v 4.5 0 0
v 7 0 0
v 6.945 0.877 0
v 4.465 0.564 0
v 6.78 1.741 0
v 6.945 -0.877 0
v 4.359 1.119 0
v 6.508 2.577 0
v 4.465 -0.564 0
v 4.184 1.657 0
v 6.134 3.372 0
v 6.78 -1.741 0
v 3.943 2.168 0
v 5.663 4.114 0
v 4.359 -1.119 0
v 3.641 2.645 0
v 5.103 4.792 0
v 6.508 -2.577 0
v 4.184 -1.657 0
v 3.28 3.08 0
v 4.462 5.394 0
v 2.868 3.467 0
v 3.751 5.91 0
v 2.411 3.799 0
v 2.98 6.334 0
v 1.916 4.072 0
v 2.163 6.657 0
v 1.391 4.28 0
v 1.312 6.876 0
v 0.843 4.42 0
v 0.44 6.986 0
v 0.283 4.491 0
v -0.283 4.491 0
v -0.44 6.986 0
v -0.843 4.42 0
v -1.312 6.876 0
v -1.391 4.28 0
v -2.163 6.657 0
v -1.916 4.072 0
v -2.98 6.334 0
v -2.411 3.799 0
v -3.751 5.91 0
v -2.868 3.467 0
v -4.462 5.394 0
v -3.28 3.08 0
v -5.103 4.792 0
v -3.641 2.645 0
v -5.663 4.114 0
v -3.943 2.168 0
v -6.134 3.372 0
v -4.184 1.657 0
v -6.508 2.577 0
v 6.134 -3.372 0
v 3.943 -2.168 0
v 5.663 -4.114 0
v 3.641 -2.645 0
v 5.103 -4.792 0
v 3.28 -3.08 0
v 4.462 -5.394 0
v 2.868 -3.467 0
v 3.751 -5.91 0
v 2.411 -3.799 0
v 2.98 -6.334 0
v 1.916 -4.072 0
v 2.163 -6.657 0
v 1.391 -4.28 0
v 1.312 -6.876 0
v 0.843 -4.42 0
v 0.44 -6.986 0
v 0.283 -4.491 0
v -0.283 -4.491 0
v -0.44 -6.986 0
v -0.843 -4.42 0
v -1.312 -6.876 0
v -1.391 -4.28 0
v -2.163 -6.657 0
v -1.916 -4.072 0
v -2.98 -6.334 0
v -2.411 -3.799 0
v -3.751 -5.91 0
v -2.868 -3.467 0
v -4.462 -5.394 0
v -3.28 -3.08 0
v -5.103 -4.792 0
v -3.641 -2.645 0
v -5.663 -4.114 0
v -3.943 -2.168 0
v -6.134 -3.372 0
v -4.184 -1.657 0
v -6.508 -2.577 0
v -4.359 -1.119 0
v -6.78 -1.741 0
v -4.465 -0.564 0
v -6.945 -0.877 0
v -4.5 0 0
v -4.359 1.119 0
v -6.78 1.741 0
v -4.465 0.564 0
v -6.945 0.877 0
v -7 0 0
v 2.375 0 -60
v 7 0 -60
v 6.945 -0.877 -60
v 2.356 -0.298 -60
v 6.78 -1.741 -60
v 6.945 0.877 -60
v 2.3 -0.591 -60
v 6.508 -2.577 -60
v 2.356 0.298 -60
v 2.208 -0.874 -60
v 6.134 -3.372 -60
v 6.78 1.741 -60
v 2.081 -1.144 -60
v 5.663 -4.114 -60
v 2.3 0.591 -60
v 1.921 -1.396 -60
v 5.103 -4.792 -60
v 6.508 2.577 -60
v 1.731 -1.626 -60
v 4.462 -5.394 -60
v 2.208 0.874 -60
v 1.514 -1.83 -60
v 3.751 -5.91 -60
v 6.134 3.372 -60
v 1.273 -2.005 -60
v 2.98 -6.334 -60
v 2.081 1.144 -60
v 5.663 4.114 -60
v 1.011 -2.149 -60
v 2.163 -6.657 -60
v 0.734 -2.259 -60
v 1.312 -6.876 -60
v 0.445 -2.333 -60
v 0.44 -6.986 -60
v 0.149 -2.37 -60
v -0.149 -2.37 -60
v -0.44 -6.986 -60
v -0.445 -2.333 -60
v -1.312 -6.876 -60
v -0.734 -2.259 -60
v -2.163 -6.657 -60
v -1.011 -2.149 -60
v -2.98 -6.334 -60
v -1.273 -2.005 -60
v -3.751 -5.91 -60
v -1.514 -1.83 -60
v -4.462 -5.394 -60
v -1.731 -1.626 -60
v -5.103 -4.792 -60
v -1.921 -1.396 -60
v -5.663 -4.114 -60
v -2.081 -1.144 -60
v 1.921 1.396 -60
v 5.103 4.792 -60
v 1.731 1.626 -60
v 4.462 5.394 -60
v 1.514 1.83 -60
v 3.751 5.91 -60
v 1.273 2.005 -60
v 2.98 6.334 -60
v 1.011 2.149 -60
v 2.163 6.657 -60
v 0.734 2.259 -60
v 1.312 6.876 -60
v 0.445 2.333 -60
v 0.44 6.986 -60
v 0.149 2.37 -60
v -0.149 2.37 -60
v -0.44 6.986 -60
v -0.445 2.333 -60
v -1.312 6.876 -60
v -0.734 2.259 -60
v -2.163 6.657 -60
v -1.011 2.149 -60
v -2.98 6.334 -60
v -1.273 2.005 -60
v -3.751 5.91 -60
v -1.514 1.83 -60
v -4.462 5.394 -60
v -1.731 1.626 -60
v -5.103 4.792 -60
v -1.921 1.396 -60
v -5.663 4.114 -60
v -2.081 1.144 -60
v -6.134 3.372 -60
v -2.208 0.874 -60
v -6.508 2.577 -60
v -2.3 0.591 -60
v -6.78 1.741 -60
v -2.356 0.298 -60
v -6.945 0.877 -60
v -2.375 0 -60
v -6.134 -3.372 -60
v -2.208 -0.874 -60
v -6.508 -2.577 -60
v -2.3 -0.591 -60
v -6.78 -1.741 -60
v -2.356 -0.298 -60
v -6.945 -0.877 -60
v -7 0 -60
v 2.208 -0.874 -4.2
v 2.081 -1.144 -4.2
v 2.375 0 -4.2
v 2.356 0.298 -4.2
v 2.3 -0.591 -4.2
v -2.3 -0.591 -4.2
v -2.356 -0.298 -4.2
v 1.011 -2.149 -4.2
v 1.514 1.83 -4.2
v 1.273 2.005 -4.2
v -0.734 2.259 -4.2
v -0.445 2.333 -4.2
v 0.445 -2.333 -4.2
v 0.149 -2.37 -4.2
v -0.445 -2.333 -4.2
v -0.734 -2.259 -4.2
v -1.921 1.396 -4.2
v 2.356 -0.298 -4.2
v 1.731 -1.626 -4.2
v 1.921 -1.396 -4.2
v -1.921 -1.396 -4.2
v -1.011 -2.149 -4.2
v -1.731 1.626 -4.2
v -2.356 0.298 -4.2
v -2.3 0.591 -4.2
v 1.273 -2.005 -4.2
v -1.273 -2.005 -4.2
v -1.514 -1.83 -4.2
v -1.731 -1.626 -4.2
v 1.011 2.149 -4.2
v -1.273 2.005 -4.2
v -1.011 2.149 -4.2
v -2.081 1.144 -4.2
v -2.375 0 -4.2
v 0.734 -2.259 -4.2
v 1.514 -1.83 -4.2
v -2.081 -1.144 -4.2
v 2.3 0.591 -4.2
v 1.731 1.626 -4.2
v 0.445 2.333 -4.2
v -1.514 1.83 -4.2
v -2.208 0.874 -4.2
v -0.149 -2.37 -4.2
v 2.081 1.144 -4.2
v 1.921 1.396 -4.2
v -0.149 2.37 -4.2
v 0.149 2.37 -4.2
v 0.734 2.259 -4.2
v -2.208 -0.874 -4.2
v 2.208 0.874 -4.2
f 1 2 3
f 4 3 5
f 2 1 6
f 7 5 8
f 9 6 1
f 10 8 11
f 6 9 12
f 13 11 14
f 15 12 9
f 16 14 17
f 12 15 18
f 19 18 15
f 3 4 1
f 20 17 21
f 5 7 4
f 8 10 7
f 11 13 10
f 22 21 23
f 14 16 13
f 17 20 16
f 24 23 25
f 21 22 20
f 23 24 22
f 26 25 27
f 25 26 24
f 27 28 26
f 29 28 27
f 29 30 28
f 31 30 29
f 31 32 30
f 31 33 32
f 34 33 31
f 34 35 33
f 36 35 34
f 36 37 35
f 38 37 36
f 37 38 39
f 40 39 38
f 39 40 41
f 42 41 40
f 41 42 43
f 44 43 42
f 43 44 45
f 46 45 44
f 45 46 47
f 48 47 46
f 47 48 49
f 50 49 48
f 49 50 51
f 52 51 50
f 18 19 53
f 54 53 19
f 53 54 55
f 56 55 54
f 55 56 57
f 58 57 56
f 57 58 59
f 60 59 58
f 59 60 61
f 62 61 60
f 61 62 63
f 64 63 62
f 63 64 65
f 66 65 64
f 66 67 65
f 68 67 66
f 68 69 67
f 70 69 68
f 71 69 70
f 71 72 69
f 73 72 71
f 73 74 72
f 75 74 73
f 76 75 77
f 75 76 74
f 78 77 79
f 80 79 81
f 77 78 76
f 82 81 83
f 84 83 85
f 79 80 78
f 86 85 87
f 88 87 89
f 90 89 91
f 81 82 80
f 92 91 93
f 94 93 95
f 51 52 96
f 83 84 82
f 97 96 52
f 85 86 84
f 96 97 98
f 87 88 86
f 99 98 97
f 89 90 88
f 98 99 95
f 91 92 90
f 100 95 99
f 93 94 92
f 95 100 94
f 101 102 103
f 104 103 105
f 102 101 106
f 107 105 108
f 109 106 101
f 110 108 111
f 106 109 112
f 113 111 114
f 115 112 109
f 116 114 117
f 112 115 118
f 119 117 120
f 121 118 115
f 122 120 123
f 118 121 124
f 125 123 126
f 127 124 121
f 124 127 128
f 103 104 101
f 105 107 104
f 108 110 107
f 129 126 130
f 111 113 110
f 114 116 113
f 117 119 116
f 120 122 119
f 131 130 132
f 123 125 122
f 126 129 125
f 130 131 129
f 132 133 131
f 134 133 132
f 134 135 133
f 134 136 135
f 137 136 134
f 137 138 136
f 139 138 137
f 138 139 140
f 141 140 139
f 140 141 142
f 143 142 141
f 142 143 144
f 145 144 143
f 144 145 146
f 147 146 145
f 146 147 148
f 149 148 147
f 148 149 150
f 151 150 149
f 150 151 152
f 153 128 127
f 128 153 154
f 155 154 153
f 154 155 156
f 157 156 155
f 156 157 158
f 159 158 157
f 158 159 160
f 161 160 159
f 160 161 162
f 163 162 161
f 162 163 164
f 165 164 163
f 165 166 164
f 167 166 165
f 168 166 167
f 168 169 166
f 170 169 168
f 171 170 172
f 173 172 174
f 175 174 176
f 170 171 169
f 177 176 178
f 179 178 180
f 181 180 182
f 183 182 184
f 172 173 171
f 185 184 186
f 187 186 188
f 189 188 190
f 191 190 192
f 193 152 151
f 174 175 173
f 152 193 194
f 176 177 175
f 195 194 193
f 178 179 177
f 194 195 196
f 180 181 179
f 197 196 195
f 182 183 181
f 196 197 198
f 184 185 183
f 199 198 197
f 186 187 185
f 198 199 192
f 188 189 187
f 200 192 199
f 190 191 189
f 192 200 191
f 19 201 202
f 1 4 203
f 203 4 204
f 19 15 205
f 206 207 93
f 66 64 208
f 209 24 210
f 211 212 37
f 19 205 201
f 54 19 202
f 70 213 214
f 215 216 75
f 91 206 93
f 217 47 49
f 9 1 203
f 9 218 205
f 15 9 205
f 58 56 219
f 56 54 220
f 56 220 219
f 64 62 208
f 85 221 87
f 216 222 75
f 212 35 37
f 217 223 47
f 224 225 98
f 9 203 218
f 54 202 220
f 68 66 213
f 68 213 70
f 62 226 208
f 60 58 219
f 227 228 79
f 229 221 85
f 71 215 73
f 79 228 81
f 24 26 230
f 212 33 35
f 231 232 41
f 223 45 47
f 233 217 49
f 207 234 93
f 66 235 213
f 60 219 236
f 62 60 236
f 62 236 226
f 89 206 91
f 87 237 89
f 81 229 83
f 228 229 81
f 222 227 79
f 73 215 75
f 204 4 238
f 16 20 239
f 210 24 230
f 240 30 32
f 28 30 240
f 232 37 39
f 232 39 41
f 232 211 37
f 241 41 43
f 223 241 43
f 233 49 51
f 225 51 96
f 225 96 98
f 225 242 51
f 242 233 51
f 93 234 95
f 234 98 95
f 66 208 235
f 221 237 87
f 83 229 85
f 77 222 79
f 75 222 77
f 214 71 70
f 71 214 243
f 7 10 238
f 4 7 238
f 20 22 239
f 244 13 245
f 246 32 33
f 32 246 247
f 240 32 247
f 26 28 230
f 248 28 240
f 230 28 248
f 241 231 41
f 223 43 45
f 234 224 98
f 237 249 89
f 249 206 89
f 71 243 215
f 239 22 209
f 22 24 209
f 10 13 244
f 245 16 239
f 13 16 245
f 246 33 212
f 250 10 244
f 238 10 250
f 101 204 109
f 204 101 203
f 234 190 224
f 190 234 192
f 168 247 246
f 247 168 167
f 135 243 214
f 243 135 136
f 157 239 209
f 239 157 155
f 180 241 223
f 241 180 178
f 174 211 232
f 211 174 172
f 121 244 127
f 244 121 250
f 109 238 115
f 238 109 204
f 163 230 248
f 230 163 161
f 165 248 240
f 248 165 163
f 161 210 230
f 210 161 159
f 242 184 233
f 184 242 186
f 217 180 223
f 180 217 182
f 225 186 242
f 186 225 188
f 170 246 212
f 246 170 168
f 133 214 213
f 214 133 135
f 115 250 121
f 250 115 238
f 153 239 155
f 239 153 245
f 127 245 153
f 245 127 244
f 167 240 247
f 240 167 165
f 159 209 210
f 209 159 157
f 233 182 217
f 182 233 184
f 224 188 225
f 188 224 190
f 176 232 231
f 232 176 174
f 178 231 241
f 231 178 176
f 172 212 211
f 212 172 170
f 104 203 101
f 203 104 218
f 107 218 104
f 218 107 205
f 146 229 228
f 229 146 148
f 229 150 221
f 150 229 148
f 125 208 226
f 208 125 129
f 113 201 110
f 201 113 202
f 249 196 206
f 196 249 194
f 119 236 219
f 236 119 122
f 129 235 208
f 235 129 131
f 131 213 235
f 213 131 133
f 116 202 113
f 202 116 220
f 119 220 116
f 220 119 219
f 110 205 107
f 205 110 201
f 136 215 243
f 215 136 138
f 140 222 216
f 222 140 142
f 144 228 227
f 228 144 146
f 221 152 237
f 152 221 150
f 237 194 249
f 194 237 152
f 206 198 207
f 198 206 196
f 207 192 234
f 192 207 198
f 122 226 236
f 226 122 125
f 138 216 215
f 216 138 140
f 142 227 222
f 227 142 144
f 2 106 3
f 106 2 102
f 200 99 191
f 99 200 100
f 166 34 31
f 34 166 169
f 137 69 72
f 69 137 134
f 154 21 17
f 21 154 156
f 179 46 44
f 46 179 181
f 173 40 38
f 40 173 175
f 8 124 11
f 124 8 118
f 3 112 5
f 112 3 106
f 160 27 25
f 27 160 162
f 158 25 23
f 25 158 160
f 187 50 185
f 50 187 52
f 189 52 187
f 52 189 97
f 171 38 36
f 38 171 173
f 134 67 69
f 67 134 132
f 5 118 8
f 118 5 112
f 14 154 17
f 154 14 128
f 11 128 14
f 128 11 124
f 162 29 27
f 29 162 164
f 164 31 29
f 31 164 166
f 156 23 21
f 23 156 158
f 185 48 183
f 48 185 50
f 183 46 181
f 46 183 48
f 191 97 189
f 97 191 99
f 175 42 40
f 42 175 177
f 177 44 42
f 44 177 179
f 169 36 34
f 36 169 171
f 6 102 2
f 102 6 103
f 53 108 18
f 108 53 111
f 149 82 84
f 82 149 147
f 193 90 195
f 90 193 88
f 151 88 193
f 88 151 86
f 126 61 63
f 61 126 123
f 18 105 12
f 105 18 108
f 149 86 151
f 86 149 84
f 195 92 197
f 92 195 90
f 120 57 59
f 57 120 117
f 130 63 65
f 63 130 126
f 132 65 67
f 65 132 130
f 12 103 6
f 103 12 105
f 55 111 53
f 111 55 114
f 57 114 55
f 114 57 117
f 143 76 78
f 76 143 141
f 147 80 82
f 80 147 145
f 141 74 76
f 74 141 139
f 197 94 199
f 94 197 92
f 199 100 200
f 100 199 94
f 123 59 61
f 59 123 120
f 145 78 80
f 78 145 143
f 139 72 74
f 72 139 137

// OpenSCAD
$fn = 50;


difference() {
	union() {
		translate(v = [0, 0, -60.0000000000]) {
			cylinder(h = 60, r = 7.0000000000);
		}
	}
	union() {
		translate(v = [0, 0, 0]) {
			rotate(a = [0, 0, 0]) {
				difference() {
					union() {
						#translate(v = [0, 0, -60.0000000000]) {
							cylinder(h = 60, r = 2.2500000000);
						}
						#translate(v = [0, 0, -4.2000000000]) {
							cylinder(h = 4.2000000000, r = 7.0000000000, r1 = 2.3750000000, r2 = 4.5000000000);
						}
						#translate(v = [0, 0, -60.0000000000]) {
							cylinder(h = 60, r = 2.3750000000);
						}
						#translate(v = [0, 0, -60.0000000000]) {
							cylinder(h = 60, r = 2.2500000000);
						}
					}
					union();
				}
			}
		}
	}
}
